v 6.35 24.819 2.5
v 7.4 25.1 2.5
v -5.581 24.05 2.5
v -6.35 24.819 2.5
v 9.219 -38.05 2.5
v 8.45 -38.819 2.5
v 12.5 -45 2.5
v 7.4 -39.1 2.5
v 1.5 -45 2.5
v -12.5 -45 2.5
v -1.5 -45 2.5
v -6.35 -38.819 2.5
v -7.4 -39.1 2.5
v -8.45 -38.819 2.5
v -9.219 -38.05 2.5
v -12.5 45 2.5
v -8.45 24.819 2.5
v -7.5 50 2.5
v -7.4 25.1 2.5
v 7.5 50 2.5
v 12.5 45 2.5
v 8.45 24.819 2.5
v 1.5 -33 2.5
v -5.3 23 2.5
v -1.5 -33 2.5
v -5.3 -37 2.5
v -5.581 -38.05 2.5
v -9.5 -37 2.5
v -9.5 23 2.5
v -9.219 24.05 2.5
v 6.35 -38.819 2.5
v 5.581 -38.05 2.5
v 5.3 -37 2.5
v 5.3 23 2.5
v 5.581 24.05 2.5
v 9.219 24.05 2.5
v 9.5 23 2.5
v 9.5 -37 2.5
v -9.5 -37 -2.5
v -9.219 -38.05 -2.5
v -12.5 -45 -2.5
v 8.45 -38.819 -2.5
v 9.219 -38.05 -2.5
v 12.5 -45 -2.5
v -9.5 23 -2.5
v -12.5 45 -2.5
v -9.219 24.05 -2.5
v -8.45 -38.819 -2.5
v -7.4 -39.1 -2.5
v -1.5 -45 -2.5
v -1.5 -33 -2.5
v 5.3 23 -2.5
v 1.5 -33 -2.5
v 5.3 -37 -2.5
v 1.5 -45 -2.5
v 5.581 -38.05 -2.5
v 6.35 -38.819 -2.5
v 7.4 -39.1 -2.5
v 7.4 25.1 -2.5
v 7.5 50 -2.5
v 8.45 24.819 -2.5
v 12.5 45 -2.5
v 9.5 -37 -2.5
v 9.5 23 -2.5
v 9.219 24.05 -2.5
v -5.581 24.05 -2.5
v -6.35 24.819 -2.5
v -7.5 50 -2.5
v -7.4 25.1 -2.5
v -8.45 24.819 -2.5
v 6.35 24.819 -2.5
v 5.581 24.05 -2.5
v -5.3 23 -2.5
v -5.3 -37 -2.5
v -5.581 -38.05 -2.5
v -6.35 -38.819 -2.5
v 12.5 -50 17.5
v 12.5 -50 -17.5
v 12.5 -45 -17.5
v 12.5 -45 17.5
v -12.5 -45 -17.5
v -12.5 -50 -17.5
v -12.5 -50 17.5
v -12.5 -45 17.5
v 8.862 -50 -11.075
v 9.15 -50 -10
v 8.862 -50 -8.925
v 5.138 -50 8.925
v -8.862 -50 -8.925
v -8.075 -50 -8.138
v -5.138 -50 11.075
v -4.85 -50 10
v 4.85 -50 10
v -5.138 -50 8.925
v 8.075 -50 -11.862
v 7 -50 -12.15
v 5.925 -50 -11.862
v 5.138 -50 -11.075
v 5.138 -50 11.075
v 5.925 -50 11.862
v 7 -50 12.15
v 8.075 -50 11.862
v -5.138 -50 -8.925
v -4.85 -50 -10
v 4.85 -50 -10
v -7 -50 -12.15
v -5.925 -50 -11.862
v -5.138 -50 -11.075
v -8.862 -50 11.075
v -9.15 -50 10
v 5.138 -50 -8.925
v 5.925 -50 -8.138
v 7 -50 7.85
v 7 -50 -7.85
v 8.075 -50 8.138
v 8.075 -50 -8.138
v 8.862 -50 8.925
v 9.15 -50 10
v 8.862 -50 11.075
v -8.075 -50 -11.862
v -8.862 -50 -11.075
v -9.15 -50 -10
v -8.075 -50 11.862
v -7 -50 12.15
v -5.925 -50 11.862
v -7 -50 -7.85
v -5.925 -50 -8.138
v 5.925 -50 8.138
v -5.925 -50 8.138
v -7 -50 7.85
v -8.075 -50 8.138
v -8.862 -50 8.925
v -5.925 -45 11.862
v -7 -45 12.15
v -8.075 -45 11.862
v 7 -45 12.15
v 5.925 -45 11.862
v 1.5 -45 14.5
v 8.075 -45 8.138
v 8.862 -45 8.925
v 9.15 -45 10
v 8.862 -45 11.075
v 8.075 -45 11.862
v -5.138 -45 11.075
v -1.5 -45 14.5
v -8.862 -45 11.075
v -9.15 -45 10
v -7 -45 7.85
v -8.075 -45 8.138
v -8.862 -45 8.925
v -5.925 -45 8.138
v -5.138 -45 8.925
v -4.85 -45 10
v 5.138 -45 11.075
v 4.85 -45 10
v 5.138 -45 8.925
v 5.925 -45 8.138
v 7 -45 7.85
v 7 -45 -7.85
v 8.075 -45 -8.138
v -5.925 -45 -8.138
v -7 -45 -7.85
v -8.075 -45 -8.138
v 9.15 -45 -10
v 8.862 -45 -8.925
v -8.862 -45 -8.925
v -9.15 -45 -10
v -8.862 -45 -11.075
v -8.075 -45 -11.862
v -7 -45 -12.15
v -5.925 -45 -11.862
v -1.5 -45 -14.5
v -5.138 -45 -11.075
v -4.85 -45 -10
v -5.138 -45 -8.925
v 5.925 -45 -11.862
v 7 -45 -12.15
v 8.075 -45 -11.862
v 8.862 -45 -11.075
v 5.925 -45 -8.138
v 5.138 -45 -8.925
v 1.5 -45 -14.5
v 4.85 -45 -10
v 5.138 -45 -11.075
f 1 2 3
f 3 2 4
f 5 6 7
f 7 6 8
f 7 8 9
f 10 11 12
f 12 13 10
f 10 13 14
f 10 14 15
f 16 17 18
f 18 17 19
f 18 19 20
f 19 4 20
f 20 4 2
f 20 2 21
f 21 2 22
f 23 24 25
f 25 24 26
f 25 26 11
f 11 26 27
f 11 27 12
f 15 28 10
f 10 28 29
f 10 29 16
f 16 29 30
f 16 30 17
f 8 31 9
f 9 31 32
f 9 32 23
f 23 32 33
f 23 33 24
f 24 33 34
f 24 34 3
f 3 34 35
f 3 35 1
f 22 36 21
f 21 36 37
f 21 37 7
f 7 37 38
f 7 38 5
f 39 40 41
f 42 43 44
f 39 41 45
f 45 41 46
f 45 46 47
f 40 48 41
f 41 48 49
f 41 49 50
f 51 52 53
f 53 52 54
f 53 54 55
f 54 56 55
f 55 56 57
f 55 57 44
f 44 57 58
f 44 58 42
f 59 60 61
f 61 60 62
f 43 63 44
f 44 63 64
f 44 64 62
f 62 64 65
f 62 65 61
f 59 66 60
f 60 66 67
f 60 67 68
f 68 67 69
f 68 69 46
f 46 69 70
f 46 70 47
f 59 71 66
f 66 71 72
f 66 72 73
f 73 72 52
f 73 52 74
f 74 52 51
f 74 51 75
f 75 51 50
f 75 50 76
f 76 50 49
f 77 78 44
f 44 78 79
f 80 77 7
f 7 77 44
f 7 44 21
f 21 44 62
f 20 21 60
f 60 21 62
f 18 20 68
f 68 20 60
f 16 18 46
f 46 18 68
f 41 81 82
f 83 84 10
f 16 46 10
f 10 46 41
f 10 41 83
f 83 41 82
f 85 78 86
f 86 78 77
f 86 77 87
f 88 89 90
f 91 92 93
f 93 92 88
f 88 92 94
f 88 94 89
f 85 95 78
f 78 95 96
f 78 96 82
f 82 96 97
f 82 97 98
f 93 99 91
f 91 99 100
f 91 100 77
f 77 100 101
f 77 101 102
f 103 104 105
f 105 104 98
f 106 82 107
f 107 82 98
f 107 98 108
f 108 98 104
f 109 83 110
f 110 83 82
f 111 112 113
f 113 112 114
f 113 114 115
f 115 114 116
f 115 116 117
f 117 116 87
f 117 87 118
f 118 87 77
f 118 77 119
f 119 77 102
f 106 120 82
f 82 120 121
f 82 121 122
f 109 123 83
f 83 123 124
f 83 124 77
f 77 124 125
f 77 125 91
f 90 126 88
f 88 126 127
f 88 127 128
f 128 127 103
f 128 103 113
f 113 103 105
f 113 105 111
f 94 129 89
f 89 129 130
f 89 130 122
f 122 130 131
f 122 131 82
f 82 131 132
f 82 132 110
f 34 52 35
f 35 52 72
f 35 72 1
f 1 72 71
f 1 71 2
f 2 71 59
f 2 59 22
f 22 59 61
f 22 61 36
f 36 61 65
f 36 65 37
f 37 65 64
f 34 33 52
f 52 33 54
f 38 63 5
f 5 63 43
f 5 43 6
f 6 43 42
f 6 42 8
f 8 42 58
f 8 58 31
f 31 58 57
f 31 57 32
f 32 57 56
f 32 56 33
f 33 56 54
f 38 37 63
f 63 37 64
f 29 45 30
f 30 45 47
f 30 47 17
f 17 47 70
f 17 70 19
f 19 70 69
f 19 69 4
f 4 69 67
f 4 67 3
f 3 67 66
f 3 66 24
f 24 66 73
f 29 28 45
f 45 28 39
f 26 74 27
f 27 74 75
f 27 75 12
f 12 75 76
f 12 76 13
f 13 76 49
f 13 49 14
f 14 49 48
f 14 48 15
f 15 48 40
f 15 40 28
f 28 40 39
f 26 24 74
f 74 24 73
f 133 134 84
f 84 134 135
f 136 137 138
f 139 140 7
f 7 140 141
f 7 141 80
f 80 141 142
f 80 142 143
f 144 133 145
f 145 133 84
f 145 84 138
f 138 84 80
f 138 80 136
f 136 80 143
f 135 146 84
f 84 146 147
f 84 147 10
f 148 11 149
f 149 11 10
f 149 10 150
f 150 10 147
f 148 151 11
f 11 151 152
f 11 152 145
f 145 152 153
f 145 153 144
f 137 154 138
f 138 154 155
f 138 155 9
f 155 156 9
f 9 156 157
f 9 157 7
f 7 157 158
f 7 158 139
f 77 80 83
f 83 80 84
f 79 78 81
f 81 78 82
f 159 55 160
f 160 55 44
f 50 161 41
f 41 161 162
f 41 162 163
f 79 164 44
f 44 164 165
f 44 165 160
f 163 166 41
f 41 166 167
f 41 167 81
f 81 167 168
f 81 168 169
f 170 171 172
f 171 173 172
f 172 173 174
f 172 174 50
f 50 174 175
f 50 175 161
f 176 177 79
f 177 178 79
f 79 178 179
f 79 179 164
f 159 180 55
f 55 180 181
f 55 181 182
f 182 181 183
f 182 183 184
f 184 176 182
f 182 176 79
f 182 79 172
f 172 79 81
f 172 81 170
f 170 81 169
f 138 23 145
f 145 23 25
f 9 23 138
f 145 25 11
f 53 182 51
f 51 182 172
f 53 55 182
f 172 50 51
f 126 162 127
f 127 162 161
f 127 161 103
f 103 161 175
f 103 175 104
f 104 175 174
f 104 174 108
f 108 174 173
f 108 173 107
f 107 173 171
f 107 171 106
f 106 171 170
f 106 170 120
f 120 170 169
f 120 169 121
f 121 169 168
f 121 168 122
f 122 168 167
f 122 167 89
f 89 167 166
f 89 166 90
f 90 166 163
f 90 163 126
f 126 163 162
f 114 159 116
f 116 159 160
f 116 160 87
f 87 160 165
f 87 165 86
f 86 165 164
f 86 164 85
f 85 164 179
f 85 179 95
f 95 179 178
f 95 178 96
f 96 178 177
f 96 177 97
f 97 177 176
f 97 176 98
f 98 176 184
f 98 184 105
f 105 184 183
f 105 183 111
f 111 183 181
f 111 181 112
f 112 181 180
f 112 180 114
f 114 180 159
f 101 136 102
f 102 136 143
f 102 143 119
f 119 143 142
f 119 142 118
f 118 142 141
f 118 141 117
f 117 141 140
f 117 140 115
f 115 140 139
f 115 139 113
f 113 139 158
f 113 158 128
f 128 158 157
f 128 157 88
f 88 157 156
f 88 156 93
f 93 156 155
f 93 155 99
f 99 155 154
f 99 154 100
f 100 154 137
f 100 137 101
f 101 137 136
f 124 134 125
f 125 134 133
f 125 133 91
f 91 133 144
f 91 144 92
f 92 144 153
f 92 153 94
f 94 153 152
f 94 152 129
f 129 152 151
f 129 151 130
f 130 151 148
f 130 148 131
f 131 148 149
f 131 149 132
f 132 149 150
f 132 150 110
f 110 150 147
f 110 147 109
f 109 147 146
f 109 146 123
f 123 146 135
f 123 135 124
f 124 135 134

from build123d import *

# Parameters (mm, degrees)
BOSS_EXTRUDE1_DEPTH = 2.5
SKETCH2_W           = 15
SKETCH2_H           = 5
BOSS_EXTRUDE2_DEPTH = 12.5
BOSS_EXTRUDE3_DEPTH = 1.5
SKETCH6_R           = 2.15
CUT_EXTRUDE1_DEPTH  = 5


with BuildPart() as part:
    # Sketch1 → Boss-Extrude1 (new, symmetric)
    with BuildSketch(Plane.XY):
        Polygon((-12.5, 45), (-7.5, 50), (7.5, 50), (12.5, 45), (12.5, -50), (-12.5, -50), align=None)
        with BuildLine():
            Line((9.5, 23), (9.5, -37))
            ThreePointArc((9.5, -37), (7.4, -39.1), (5.3, -37))
            Line((5.3, -37), (5.3, 23))
            ThreePointArc((5.3, 23), (7.4, 25.1), (9.5, 23))
        make_face(mode=Mode.SUBTRACT)
        with BuildLine():
            Line((-9.5, 23), (-9.5, -37))
            ThreePointArc((-9.5, -37), (-7.4, -39.1), (-5.3, -37))
            Line((-5.3, -37), (-5.3, 23))
            ThreePointArc((-5.3, 23), (-7.4, 25.1), (-9.5, 23))
        make_face(mode=Mode.SUBTRACT)
    extrude(amount=BOSS_EXTRUDE1_DEPTH, both=True)

    # Sketch2 → Boss-Extrude2 (add, symmetric)
    with BuildSketch(Plane(origin=(0, 0, 0), x_dir=(0, 0, -1), z_dir=(1, 0, 0))):
        with Locations((10, -47.5)):
            Rectangle(SKETCH2_W, SKETCH2_H)
        with Locations((-10, -47.5)):
            Rectangle(SKETCH2_W, SKETCH2_H)
    extrude(amount=BOSS_EXTRUDE2_DEPTH, both=True)

    # Sketch5 → Boss-Extrude3 (add, symmetric)
    with BuildSketch(Plane(origin=(0, 0, 0), x_dir=(0, 0, -1), z_dir=(1, 0, 0))):
        Polygon((-14.5, -45), (-2.5, -33), (-2.5, -45), align=None)
        Polygon((2.5, -33), (2.5, -45), (14.5, -45), align=None)
    extrude(amount=BOSS_EXTRUDE3_DEPTH, both=True)

    # Sketch6 → Cut-Extrude1 (cut)
    with BuildSketch(Plane(origin=(0, -45, 0), x_dir=(1, 0, 0), z_dir=(0, 1, 0))):
        with Locations(Location((-7, 10, 0), (0, 0, 270))):
            Circle(SKETCH6_R)
        with Locations(Location((7, 10, 0), (0, 0, 270))):
            Circle(SKETCH6_R)
        with Locations(Location((7, -10, 0), (0, 0, 270))):
            Circle(SKETCH6_R)
        with Locations(Location((-7, -10, 0), (0, 0, 270))):
            Circle(SKETCH6_R)
    extrude(amount=-CUT_EXTRUDE1_DEPTH, mode=Mode.SUBTRACT)


solid = part.part
